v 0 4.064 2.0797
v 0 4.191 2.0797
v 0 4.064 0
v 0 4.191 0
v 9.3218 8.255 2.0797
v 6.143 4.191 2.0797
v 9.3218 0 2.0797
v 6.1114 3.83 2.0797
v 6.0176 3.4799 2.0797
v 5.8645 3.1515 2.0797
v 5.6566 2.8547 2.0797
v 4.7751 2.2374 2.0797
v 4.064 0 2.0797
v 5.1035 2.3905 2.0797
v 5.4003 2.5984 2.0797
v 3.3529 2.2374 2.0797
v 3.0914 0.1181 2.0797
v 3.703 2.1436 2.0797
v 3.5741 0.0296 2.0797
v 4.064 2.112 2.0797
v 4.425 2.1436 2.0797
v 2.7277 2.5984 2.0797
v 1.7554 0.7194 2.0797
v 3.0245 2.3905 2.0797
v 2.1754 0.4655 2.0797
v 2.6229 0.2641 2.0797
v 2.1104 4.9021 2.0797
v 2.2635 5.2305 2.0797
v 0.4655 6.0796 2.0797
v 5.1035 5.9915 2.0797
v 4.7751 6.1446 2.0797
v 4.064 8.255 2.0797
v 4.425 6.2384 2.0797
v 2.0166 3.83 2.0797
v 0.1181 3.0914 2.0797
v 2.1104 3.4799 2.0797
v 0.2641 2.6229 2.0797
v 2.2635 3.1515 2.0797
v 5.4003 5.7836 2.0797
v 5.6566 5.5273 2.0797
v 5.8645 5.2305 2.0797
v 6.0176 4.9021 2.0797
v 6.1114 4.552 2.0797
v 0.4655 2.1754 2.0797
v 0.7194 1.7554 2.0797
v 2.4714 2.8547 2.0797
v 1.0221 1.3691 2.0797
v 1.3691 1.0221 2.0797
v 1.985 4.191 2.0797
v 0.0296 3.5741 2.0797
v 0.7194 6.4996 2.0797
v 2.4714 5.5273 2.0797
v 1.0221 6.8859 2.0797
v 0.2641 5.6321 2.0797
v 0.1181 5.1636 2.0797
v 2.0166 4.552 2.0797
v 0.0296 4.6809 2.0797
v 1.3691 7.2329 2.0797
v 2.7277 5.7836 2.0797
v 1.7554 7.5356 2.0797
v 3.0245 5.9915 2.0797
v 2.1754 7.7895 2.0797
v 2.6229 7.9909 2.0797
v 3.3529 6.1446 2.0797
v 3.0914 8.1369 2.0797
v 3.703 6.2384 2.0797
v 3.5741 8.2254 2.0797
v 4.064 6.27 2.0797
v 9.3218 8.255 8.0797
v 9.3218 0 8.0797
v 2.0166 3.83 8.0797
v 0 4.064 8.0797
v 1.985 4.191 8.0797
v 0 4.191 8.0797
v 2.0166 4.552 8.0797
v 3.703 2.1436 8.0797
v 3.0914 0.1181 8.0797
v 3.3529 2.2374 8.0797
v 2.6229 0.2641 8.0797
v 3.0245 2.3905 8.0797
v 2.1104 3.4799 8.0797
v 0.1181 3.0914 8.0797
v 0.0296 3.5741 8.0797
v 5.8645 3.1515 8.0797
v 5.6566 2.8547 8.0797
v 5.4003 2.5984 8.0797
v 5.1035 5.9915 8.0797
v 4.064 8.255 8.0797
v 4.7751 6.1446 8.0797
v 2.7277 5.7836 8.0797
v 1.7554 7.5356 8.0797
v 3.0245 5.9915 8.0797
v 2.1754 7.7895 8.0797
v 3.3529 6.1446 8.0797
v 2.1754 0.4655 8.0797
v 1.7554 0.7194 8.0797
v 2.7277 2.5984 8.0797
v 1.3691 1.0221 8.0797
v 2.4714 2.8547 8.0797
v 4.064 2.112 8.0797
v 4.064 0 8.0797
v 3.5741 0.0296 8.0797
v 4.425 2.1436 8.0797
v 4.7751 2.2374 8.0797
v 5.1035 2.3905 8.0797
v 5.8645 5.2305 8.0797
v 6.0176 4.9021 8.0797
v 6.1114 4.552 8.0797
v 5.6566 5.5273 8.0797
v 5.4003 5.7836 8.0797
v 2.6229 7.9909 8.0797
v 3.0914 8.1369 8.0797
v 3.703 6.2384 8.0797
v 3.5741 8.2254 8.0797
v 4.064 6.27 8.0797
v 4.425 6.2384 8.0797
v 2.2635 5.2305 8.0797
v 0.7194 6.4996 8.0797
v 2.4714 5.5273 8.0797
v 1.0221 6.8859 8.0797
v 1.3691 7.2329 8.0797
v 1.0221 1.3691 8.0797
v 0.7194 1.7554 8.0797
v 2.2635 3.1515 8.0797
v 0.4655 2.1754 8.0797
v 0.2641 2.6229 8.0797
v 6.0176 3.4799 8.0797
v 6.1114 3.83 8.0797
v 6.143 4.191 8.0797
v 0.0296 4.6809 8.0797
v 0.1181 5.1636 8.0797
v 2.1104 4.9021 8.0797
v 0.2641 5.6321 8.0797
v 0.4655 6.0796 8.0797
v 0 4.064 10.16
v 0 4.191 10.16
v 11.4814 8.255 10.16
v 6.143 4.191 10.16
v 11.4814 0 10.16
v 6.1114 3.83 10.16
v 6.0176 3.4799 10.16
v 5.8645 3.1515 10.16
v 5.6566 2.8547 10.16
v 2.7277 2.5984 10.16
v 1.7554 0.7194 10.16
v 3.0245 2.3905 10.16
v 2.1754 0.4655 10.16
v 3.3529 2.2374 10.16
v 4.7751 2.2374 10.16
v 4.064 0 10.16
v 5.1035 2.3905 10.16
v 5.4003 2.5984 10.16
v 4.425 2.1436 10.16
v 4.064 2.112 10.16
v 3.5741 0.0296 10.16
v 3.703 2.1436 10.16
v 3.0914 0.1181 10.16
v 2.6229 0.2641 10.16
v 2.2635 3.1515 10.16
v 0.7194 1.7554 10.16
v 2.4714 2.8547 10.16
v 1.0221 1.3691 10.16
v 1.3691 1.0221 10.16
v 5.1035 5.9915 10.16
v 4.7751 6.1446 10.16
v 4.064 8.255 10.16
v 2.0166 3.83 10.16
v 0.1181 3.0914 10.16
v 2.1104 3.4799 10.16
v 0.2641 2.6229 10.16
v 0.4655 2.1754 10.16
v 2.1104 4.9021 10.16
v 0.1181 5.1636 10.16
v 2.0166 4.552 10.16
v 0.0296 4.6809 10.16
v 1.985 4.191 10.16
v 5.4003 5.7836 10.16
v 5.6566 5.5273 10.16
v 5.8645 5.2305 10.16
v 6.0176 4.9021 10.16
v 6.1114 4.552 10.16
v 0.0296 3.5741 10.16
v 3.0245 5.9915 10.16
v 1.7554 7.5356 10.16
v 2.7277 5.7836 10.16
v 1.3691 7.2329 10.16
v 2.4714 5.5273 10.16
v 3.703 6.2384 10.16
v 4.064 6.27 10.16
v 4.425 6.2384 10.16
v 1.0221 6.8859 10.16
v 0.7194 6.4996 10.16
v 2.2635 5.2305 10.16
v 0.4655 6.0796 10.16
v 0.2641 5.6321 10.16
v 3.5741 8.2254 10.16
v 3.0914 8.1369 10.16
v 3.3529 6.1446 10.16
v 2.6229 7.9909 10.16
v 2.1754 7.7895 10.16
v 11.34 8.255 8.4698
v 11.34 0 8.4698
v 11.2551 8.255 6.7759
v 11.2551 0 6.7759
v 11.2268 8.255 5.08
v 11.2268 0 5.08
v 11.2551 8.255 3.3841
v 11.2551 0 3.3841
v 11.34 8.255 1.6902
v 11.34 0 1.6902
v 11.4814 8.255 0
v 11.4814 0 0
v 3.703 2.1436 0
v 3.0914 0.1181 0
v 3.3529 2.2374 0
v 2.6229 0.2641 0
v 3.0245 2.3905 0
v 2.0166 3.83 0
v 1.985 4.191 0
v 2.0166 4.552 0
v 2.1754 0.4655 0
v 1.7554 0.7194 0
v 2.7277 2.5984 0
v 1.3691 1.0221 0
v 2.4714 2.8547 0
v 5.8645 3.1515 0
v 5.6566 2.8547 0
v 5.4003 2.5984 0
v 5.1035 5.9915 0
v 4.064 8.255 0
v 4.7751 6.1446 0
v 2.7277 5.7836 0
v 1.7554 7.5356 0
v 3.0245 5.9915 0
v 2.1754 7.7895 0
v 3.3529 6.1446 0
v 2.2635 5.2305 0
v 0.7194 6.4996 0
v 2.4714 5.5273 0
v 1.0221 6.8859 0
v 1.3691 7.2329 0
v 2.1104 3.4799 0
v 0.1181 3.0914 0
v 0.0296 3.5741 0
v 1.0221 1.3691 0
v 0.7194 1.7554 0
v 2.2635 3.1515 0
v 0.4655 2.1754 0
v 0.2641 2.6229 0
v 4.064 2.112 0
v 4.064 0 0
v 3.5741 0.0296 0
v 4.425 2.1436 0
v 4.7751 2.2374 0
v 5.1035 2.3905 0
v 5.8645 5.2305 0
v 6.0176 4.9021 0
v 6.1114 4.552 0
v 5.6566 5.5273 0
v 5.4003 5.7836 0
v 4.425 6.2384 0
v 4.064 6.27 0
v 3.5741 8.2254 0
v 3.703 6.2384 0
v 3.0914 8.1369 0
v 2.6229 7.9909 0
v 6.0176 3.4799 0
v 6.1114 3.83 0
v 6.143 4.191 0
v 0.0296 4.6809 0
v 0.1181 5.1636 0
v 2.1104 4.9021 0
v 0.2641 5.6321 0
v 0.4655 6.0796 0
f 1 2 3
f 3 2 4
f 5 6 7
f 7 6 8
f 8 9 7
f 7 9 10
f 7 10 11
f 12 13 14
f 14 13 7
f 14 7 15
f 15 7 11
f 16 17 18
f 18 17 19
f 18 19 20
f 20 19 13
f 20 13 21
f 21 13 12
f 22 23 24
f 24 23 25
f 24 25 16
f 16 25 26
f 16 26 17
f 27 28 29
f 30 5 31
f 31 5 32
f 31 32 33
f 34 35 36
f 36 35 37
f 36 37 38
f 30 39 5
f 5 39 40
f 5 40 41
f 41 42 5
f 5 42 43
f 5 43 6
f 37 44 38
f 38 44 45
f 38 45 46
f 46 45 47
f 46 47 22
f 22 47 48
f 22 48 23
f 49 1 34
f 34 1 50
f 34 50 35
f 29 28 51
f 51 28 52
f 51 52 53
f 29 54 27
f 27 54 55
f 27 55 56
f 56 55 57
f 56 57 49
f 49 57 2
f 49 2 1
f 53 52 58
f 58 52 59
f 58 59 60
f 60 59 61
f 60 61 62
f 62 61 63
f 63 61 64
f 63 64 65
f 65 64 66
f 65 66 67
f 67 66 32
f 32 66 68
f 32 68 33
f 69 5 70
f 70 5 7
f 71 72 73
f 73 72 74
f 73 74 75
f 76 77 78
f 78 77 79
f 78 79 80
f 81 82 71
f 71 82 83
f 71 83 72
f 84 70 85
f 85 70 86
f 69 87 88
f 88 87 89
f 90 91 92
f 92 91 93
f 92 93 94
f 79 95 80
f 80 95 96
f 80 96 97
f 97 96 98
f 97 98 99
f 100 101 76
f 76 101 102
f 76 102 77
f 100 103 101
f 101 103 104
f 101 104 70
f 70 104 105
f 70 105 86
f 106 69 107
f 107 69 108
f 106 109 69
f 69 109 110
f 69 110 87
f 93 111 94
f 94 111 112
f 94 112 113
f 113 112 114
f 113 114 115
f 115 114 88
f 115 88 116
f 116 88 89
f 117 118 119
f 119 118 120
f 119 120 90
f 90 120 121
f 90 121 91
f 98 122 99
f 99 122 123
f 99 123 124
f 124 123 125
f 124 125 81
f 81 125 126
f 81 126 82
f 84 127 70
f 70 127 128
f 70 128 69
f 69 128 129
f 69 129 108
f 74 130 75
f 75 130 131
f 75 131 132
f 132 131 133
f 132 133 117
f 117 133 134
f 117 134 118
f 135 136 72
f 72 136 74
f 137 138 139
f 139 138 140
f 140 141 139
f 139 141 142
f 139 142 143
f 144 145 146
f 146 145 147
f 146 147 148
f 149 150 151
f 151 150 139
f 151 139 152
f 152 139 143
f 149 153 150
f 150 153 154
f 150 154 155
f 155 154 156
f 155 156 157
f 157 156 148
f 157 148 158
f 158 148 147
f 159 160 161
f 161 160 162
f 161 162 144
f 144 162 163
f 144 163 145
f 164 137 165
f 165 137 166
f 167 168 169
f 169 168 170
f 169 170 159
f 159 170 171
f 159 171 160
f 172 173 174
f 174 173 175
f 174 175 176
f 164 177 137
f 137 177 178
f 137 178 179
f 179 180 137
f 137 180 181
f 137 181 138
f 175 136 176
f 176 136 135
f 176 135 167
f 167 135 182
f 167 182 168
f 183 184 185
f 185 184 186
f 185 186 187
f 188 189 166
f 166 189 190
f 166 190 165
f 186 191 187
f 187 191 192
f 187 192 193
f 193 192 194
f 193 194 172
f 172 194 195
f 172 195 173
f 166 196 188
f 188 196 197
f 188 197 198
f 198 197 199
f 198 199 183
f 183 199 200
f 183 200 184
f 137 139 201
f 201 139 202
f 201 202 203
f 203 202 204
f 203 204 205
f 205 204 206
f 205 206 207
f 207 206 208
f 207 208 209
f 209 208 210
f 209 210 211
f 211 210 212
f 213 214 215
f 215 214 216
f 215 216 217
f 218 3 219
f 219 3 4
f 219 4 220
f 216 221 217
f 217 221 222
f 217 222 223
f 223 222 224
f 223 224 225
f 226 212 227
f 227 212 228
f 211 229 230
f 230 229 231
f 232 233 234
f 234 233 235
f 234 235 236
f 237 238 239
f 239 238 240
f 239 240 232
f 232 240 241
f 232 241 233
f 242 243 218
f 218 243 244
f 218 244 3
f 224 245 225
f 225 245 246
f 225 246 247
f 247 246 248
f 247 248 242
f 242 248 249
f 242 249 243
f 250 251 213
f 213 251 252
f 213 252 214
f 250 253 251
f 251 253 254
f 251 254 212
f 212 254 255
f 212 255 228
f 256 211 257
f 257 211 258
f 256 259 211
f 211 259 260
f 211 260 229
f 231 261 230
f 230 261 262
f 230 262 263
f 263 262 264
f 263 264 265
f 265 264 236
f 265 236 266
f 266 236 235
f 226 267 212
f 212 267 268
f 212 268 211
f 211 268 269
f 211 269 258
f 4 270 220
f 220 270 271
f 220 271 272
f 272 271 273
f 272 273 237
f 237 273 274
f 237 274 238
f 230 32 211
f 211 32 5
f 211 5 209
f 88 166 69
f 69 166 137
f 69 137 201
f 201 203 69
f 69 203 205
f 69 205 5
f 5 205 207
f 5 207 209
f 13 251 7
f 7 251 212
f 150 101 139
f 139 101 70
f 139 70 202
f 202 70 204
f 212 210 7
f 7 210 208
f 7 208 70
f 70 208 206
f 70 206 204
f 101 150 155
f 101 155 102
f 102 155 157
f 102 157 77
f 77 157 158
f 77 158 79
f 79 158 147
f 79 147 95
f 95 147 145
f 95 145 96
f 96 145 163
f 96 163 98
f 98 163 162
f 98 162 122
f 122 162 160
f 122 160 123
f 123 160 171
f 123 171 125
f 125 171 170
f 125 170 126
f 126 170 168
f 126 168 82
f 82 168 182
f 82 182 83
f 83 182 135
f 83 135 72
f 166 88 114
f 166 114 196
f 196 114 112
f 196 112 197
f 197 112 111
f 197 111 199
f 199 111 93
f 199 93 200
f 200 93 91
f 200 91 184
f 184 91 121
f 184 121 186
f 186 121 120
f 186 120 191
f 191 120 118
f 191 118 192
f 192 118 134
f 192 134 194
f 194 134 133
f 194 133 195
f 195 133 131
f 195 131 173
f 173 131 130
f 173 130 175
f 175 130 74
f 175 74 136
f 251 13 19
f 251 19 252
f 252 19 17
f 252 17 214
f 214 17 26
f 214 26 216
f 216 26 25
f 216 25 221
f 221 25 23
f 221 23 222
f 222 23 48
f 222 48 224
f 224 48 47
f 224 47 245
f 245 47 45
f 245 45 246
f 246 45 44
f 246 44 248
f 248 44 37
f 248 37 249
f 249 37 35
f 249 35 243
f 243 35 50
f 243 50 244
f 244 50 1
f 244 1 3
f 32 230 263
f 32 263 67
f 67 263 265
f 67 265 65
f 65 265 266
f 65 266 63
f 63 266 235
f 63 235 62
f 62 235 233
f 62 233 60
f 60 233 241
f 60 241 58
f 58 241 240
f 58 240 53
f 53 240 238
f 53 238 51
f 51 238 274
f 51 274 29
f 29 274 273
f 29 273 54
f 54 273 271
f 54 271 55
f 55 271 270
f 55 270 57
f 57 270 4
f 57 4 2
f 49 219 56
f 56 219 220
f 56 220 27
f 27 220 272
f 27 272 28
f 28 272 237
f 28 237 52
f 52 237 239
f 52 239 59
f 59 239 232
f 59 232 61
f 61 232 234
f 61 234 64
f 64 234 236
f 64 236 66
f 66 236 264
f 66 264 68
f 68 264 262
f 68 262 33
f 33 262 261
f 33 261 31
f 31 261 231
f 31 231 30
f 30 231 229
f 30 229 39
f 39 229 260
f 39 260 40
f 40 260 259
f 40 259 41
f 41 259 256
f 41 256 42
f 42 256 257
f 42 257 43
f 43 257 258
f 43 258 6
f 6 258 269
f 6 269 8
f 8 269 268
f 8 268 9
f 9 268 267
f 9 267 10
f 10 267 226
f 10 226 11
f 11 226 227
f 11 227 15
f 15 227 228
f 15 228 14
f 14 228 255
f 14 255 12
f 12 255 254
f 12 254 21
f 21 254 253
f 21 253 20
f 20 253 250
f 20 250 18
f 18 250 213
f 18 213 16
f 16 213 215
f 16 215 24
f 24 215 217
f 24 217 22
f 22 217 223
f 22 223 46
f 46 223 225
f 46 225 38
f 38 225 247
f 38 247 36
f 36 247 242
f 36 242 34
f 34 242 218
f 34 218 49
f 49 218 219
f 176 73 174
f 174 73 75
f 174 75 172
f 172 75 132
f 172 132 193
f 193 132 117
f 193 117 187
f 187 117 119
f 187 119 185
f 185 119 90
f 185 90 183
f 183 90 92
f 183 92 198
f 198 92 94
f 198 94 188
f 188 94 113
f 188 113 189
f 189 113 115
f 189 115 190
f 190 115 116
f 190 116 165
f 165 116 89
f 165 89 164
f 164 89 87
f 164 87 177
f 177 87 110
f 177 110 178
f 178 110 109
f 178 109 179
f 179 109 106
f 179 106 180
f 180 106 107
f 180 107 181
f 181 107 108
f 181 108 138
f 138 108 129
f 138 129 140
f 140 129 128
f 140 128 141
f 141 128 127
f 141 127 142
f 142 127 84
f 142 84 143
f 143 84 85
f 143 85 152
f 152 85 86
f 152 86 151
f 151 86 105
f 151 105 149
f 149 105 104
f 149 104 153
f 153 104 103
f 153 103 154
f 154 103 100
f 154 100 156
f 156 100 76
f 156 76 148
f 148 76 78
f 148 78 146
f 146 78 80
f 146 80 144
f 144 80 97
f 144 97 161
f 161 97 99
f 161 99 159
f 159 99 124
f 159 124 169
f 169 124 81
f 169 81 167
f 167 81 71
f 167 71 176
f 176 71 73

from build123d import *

# Parameters (mm, degrees)
BOSS_EXTRUDE2_DEPTH = 8.255
FILLET1_R           = 4.064
SKETCH2_R           = 2.07899
CUT_EXTRUDE1_DEPTH  = 11.16


with BuildPart() as part:
    # Sketch1 → Boss-Extrude2 (new body)
    with BuildSketch(Plane(origin=(0, 0, 0), x_dir=(1, 0, 0), z_dir=(0, 1, 0))):
        with BuildLine():
            Line((0, 0), (11.2268, 0))
            Line((11.2268, 0), (11.481438195, 0))
            ThreePointArc((11.481438195, 0), (11.2268, -5.08), (11.481438195, -10.16))
            Line((11.481438195, -10.16), (11.2268, -10.16))
            Line((11.2268, -10.16), (0, -10.16))
            Line((0, -10.16), (0, -8.07974))
            Line((0, -8.07974), (9.3218, -8.07974))
            Line((9.3218, -8.07974), (9.3218, -5.08))
            Line((9.3218, -5.08), (9.3218, -2.07974))
            Line((9.3218, -2.07974), (0, -2.07974))
            Line((0, -2.07974), (0, 0))
        make_face()
    extrude(amount=BOSS_EXTRUDE2_DEPTH)

    # Fillet1
    fillet1_edges = [part.edges().sort_by_distance(p)[0] for p in [
        (0, 0, 9.11987),
        (0, 0, 1.03987),
        (0, 8.255, 9.11987),
        (0, 8.255, 1.03987),
    ]]
    fillet(fillet1_edges, radius=FILLET1_R)

    # Sketch2 → Cut-Extrude1 (cut, through all)
    with BuildSketch(Plane(origin=(0, 0, 0), x_dir=(-1, 0, 0), z_dir=(0, 0, -1))):
        with Locations((-4.064, 4.191)):
            Circle(SKETCH2_R)
    extrude(amount=-CUT_EXTRUDE1_DEPTH, mode=Mode.SUBTRACT)


solid = part.part
